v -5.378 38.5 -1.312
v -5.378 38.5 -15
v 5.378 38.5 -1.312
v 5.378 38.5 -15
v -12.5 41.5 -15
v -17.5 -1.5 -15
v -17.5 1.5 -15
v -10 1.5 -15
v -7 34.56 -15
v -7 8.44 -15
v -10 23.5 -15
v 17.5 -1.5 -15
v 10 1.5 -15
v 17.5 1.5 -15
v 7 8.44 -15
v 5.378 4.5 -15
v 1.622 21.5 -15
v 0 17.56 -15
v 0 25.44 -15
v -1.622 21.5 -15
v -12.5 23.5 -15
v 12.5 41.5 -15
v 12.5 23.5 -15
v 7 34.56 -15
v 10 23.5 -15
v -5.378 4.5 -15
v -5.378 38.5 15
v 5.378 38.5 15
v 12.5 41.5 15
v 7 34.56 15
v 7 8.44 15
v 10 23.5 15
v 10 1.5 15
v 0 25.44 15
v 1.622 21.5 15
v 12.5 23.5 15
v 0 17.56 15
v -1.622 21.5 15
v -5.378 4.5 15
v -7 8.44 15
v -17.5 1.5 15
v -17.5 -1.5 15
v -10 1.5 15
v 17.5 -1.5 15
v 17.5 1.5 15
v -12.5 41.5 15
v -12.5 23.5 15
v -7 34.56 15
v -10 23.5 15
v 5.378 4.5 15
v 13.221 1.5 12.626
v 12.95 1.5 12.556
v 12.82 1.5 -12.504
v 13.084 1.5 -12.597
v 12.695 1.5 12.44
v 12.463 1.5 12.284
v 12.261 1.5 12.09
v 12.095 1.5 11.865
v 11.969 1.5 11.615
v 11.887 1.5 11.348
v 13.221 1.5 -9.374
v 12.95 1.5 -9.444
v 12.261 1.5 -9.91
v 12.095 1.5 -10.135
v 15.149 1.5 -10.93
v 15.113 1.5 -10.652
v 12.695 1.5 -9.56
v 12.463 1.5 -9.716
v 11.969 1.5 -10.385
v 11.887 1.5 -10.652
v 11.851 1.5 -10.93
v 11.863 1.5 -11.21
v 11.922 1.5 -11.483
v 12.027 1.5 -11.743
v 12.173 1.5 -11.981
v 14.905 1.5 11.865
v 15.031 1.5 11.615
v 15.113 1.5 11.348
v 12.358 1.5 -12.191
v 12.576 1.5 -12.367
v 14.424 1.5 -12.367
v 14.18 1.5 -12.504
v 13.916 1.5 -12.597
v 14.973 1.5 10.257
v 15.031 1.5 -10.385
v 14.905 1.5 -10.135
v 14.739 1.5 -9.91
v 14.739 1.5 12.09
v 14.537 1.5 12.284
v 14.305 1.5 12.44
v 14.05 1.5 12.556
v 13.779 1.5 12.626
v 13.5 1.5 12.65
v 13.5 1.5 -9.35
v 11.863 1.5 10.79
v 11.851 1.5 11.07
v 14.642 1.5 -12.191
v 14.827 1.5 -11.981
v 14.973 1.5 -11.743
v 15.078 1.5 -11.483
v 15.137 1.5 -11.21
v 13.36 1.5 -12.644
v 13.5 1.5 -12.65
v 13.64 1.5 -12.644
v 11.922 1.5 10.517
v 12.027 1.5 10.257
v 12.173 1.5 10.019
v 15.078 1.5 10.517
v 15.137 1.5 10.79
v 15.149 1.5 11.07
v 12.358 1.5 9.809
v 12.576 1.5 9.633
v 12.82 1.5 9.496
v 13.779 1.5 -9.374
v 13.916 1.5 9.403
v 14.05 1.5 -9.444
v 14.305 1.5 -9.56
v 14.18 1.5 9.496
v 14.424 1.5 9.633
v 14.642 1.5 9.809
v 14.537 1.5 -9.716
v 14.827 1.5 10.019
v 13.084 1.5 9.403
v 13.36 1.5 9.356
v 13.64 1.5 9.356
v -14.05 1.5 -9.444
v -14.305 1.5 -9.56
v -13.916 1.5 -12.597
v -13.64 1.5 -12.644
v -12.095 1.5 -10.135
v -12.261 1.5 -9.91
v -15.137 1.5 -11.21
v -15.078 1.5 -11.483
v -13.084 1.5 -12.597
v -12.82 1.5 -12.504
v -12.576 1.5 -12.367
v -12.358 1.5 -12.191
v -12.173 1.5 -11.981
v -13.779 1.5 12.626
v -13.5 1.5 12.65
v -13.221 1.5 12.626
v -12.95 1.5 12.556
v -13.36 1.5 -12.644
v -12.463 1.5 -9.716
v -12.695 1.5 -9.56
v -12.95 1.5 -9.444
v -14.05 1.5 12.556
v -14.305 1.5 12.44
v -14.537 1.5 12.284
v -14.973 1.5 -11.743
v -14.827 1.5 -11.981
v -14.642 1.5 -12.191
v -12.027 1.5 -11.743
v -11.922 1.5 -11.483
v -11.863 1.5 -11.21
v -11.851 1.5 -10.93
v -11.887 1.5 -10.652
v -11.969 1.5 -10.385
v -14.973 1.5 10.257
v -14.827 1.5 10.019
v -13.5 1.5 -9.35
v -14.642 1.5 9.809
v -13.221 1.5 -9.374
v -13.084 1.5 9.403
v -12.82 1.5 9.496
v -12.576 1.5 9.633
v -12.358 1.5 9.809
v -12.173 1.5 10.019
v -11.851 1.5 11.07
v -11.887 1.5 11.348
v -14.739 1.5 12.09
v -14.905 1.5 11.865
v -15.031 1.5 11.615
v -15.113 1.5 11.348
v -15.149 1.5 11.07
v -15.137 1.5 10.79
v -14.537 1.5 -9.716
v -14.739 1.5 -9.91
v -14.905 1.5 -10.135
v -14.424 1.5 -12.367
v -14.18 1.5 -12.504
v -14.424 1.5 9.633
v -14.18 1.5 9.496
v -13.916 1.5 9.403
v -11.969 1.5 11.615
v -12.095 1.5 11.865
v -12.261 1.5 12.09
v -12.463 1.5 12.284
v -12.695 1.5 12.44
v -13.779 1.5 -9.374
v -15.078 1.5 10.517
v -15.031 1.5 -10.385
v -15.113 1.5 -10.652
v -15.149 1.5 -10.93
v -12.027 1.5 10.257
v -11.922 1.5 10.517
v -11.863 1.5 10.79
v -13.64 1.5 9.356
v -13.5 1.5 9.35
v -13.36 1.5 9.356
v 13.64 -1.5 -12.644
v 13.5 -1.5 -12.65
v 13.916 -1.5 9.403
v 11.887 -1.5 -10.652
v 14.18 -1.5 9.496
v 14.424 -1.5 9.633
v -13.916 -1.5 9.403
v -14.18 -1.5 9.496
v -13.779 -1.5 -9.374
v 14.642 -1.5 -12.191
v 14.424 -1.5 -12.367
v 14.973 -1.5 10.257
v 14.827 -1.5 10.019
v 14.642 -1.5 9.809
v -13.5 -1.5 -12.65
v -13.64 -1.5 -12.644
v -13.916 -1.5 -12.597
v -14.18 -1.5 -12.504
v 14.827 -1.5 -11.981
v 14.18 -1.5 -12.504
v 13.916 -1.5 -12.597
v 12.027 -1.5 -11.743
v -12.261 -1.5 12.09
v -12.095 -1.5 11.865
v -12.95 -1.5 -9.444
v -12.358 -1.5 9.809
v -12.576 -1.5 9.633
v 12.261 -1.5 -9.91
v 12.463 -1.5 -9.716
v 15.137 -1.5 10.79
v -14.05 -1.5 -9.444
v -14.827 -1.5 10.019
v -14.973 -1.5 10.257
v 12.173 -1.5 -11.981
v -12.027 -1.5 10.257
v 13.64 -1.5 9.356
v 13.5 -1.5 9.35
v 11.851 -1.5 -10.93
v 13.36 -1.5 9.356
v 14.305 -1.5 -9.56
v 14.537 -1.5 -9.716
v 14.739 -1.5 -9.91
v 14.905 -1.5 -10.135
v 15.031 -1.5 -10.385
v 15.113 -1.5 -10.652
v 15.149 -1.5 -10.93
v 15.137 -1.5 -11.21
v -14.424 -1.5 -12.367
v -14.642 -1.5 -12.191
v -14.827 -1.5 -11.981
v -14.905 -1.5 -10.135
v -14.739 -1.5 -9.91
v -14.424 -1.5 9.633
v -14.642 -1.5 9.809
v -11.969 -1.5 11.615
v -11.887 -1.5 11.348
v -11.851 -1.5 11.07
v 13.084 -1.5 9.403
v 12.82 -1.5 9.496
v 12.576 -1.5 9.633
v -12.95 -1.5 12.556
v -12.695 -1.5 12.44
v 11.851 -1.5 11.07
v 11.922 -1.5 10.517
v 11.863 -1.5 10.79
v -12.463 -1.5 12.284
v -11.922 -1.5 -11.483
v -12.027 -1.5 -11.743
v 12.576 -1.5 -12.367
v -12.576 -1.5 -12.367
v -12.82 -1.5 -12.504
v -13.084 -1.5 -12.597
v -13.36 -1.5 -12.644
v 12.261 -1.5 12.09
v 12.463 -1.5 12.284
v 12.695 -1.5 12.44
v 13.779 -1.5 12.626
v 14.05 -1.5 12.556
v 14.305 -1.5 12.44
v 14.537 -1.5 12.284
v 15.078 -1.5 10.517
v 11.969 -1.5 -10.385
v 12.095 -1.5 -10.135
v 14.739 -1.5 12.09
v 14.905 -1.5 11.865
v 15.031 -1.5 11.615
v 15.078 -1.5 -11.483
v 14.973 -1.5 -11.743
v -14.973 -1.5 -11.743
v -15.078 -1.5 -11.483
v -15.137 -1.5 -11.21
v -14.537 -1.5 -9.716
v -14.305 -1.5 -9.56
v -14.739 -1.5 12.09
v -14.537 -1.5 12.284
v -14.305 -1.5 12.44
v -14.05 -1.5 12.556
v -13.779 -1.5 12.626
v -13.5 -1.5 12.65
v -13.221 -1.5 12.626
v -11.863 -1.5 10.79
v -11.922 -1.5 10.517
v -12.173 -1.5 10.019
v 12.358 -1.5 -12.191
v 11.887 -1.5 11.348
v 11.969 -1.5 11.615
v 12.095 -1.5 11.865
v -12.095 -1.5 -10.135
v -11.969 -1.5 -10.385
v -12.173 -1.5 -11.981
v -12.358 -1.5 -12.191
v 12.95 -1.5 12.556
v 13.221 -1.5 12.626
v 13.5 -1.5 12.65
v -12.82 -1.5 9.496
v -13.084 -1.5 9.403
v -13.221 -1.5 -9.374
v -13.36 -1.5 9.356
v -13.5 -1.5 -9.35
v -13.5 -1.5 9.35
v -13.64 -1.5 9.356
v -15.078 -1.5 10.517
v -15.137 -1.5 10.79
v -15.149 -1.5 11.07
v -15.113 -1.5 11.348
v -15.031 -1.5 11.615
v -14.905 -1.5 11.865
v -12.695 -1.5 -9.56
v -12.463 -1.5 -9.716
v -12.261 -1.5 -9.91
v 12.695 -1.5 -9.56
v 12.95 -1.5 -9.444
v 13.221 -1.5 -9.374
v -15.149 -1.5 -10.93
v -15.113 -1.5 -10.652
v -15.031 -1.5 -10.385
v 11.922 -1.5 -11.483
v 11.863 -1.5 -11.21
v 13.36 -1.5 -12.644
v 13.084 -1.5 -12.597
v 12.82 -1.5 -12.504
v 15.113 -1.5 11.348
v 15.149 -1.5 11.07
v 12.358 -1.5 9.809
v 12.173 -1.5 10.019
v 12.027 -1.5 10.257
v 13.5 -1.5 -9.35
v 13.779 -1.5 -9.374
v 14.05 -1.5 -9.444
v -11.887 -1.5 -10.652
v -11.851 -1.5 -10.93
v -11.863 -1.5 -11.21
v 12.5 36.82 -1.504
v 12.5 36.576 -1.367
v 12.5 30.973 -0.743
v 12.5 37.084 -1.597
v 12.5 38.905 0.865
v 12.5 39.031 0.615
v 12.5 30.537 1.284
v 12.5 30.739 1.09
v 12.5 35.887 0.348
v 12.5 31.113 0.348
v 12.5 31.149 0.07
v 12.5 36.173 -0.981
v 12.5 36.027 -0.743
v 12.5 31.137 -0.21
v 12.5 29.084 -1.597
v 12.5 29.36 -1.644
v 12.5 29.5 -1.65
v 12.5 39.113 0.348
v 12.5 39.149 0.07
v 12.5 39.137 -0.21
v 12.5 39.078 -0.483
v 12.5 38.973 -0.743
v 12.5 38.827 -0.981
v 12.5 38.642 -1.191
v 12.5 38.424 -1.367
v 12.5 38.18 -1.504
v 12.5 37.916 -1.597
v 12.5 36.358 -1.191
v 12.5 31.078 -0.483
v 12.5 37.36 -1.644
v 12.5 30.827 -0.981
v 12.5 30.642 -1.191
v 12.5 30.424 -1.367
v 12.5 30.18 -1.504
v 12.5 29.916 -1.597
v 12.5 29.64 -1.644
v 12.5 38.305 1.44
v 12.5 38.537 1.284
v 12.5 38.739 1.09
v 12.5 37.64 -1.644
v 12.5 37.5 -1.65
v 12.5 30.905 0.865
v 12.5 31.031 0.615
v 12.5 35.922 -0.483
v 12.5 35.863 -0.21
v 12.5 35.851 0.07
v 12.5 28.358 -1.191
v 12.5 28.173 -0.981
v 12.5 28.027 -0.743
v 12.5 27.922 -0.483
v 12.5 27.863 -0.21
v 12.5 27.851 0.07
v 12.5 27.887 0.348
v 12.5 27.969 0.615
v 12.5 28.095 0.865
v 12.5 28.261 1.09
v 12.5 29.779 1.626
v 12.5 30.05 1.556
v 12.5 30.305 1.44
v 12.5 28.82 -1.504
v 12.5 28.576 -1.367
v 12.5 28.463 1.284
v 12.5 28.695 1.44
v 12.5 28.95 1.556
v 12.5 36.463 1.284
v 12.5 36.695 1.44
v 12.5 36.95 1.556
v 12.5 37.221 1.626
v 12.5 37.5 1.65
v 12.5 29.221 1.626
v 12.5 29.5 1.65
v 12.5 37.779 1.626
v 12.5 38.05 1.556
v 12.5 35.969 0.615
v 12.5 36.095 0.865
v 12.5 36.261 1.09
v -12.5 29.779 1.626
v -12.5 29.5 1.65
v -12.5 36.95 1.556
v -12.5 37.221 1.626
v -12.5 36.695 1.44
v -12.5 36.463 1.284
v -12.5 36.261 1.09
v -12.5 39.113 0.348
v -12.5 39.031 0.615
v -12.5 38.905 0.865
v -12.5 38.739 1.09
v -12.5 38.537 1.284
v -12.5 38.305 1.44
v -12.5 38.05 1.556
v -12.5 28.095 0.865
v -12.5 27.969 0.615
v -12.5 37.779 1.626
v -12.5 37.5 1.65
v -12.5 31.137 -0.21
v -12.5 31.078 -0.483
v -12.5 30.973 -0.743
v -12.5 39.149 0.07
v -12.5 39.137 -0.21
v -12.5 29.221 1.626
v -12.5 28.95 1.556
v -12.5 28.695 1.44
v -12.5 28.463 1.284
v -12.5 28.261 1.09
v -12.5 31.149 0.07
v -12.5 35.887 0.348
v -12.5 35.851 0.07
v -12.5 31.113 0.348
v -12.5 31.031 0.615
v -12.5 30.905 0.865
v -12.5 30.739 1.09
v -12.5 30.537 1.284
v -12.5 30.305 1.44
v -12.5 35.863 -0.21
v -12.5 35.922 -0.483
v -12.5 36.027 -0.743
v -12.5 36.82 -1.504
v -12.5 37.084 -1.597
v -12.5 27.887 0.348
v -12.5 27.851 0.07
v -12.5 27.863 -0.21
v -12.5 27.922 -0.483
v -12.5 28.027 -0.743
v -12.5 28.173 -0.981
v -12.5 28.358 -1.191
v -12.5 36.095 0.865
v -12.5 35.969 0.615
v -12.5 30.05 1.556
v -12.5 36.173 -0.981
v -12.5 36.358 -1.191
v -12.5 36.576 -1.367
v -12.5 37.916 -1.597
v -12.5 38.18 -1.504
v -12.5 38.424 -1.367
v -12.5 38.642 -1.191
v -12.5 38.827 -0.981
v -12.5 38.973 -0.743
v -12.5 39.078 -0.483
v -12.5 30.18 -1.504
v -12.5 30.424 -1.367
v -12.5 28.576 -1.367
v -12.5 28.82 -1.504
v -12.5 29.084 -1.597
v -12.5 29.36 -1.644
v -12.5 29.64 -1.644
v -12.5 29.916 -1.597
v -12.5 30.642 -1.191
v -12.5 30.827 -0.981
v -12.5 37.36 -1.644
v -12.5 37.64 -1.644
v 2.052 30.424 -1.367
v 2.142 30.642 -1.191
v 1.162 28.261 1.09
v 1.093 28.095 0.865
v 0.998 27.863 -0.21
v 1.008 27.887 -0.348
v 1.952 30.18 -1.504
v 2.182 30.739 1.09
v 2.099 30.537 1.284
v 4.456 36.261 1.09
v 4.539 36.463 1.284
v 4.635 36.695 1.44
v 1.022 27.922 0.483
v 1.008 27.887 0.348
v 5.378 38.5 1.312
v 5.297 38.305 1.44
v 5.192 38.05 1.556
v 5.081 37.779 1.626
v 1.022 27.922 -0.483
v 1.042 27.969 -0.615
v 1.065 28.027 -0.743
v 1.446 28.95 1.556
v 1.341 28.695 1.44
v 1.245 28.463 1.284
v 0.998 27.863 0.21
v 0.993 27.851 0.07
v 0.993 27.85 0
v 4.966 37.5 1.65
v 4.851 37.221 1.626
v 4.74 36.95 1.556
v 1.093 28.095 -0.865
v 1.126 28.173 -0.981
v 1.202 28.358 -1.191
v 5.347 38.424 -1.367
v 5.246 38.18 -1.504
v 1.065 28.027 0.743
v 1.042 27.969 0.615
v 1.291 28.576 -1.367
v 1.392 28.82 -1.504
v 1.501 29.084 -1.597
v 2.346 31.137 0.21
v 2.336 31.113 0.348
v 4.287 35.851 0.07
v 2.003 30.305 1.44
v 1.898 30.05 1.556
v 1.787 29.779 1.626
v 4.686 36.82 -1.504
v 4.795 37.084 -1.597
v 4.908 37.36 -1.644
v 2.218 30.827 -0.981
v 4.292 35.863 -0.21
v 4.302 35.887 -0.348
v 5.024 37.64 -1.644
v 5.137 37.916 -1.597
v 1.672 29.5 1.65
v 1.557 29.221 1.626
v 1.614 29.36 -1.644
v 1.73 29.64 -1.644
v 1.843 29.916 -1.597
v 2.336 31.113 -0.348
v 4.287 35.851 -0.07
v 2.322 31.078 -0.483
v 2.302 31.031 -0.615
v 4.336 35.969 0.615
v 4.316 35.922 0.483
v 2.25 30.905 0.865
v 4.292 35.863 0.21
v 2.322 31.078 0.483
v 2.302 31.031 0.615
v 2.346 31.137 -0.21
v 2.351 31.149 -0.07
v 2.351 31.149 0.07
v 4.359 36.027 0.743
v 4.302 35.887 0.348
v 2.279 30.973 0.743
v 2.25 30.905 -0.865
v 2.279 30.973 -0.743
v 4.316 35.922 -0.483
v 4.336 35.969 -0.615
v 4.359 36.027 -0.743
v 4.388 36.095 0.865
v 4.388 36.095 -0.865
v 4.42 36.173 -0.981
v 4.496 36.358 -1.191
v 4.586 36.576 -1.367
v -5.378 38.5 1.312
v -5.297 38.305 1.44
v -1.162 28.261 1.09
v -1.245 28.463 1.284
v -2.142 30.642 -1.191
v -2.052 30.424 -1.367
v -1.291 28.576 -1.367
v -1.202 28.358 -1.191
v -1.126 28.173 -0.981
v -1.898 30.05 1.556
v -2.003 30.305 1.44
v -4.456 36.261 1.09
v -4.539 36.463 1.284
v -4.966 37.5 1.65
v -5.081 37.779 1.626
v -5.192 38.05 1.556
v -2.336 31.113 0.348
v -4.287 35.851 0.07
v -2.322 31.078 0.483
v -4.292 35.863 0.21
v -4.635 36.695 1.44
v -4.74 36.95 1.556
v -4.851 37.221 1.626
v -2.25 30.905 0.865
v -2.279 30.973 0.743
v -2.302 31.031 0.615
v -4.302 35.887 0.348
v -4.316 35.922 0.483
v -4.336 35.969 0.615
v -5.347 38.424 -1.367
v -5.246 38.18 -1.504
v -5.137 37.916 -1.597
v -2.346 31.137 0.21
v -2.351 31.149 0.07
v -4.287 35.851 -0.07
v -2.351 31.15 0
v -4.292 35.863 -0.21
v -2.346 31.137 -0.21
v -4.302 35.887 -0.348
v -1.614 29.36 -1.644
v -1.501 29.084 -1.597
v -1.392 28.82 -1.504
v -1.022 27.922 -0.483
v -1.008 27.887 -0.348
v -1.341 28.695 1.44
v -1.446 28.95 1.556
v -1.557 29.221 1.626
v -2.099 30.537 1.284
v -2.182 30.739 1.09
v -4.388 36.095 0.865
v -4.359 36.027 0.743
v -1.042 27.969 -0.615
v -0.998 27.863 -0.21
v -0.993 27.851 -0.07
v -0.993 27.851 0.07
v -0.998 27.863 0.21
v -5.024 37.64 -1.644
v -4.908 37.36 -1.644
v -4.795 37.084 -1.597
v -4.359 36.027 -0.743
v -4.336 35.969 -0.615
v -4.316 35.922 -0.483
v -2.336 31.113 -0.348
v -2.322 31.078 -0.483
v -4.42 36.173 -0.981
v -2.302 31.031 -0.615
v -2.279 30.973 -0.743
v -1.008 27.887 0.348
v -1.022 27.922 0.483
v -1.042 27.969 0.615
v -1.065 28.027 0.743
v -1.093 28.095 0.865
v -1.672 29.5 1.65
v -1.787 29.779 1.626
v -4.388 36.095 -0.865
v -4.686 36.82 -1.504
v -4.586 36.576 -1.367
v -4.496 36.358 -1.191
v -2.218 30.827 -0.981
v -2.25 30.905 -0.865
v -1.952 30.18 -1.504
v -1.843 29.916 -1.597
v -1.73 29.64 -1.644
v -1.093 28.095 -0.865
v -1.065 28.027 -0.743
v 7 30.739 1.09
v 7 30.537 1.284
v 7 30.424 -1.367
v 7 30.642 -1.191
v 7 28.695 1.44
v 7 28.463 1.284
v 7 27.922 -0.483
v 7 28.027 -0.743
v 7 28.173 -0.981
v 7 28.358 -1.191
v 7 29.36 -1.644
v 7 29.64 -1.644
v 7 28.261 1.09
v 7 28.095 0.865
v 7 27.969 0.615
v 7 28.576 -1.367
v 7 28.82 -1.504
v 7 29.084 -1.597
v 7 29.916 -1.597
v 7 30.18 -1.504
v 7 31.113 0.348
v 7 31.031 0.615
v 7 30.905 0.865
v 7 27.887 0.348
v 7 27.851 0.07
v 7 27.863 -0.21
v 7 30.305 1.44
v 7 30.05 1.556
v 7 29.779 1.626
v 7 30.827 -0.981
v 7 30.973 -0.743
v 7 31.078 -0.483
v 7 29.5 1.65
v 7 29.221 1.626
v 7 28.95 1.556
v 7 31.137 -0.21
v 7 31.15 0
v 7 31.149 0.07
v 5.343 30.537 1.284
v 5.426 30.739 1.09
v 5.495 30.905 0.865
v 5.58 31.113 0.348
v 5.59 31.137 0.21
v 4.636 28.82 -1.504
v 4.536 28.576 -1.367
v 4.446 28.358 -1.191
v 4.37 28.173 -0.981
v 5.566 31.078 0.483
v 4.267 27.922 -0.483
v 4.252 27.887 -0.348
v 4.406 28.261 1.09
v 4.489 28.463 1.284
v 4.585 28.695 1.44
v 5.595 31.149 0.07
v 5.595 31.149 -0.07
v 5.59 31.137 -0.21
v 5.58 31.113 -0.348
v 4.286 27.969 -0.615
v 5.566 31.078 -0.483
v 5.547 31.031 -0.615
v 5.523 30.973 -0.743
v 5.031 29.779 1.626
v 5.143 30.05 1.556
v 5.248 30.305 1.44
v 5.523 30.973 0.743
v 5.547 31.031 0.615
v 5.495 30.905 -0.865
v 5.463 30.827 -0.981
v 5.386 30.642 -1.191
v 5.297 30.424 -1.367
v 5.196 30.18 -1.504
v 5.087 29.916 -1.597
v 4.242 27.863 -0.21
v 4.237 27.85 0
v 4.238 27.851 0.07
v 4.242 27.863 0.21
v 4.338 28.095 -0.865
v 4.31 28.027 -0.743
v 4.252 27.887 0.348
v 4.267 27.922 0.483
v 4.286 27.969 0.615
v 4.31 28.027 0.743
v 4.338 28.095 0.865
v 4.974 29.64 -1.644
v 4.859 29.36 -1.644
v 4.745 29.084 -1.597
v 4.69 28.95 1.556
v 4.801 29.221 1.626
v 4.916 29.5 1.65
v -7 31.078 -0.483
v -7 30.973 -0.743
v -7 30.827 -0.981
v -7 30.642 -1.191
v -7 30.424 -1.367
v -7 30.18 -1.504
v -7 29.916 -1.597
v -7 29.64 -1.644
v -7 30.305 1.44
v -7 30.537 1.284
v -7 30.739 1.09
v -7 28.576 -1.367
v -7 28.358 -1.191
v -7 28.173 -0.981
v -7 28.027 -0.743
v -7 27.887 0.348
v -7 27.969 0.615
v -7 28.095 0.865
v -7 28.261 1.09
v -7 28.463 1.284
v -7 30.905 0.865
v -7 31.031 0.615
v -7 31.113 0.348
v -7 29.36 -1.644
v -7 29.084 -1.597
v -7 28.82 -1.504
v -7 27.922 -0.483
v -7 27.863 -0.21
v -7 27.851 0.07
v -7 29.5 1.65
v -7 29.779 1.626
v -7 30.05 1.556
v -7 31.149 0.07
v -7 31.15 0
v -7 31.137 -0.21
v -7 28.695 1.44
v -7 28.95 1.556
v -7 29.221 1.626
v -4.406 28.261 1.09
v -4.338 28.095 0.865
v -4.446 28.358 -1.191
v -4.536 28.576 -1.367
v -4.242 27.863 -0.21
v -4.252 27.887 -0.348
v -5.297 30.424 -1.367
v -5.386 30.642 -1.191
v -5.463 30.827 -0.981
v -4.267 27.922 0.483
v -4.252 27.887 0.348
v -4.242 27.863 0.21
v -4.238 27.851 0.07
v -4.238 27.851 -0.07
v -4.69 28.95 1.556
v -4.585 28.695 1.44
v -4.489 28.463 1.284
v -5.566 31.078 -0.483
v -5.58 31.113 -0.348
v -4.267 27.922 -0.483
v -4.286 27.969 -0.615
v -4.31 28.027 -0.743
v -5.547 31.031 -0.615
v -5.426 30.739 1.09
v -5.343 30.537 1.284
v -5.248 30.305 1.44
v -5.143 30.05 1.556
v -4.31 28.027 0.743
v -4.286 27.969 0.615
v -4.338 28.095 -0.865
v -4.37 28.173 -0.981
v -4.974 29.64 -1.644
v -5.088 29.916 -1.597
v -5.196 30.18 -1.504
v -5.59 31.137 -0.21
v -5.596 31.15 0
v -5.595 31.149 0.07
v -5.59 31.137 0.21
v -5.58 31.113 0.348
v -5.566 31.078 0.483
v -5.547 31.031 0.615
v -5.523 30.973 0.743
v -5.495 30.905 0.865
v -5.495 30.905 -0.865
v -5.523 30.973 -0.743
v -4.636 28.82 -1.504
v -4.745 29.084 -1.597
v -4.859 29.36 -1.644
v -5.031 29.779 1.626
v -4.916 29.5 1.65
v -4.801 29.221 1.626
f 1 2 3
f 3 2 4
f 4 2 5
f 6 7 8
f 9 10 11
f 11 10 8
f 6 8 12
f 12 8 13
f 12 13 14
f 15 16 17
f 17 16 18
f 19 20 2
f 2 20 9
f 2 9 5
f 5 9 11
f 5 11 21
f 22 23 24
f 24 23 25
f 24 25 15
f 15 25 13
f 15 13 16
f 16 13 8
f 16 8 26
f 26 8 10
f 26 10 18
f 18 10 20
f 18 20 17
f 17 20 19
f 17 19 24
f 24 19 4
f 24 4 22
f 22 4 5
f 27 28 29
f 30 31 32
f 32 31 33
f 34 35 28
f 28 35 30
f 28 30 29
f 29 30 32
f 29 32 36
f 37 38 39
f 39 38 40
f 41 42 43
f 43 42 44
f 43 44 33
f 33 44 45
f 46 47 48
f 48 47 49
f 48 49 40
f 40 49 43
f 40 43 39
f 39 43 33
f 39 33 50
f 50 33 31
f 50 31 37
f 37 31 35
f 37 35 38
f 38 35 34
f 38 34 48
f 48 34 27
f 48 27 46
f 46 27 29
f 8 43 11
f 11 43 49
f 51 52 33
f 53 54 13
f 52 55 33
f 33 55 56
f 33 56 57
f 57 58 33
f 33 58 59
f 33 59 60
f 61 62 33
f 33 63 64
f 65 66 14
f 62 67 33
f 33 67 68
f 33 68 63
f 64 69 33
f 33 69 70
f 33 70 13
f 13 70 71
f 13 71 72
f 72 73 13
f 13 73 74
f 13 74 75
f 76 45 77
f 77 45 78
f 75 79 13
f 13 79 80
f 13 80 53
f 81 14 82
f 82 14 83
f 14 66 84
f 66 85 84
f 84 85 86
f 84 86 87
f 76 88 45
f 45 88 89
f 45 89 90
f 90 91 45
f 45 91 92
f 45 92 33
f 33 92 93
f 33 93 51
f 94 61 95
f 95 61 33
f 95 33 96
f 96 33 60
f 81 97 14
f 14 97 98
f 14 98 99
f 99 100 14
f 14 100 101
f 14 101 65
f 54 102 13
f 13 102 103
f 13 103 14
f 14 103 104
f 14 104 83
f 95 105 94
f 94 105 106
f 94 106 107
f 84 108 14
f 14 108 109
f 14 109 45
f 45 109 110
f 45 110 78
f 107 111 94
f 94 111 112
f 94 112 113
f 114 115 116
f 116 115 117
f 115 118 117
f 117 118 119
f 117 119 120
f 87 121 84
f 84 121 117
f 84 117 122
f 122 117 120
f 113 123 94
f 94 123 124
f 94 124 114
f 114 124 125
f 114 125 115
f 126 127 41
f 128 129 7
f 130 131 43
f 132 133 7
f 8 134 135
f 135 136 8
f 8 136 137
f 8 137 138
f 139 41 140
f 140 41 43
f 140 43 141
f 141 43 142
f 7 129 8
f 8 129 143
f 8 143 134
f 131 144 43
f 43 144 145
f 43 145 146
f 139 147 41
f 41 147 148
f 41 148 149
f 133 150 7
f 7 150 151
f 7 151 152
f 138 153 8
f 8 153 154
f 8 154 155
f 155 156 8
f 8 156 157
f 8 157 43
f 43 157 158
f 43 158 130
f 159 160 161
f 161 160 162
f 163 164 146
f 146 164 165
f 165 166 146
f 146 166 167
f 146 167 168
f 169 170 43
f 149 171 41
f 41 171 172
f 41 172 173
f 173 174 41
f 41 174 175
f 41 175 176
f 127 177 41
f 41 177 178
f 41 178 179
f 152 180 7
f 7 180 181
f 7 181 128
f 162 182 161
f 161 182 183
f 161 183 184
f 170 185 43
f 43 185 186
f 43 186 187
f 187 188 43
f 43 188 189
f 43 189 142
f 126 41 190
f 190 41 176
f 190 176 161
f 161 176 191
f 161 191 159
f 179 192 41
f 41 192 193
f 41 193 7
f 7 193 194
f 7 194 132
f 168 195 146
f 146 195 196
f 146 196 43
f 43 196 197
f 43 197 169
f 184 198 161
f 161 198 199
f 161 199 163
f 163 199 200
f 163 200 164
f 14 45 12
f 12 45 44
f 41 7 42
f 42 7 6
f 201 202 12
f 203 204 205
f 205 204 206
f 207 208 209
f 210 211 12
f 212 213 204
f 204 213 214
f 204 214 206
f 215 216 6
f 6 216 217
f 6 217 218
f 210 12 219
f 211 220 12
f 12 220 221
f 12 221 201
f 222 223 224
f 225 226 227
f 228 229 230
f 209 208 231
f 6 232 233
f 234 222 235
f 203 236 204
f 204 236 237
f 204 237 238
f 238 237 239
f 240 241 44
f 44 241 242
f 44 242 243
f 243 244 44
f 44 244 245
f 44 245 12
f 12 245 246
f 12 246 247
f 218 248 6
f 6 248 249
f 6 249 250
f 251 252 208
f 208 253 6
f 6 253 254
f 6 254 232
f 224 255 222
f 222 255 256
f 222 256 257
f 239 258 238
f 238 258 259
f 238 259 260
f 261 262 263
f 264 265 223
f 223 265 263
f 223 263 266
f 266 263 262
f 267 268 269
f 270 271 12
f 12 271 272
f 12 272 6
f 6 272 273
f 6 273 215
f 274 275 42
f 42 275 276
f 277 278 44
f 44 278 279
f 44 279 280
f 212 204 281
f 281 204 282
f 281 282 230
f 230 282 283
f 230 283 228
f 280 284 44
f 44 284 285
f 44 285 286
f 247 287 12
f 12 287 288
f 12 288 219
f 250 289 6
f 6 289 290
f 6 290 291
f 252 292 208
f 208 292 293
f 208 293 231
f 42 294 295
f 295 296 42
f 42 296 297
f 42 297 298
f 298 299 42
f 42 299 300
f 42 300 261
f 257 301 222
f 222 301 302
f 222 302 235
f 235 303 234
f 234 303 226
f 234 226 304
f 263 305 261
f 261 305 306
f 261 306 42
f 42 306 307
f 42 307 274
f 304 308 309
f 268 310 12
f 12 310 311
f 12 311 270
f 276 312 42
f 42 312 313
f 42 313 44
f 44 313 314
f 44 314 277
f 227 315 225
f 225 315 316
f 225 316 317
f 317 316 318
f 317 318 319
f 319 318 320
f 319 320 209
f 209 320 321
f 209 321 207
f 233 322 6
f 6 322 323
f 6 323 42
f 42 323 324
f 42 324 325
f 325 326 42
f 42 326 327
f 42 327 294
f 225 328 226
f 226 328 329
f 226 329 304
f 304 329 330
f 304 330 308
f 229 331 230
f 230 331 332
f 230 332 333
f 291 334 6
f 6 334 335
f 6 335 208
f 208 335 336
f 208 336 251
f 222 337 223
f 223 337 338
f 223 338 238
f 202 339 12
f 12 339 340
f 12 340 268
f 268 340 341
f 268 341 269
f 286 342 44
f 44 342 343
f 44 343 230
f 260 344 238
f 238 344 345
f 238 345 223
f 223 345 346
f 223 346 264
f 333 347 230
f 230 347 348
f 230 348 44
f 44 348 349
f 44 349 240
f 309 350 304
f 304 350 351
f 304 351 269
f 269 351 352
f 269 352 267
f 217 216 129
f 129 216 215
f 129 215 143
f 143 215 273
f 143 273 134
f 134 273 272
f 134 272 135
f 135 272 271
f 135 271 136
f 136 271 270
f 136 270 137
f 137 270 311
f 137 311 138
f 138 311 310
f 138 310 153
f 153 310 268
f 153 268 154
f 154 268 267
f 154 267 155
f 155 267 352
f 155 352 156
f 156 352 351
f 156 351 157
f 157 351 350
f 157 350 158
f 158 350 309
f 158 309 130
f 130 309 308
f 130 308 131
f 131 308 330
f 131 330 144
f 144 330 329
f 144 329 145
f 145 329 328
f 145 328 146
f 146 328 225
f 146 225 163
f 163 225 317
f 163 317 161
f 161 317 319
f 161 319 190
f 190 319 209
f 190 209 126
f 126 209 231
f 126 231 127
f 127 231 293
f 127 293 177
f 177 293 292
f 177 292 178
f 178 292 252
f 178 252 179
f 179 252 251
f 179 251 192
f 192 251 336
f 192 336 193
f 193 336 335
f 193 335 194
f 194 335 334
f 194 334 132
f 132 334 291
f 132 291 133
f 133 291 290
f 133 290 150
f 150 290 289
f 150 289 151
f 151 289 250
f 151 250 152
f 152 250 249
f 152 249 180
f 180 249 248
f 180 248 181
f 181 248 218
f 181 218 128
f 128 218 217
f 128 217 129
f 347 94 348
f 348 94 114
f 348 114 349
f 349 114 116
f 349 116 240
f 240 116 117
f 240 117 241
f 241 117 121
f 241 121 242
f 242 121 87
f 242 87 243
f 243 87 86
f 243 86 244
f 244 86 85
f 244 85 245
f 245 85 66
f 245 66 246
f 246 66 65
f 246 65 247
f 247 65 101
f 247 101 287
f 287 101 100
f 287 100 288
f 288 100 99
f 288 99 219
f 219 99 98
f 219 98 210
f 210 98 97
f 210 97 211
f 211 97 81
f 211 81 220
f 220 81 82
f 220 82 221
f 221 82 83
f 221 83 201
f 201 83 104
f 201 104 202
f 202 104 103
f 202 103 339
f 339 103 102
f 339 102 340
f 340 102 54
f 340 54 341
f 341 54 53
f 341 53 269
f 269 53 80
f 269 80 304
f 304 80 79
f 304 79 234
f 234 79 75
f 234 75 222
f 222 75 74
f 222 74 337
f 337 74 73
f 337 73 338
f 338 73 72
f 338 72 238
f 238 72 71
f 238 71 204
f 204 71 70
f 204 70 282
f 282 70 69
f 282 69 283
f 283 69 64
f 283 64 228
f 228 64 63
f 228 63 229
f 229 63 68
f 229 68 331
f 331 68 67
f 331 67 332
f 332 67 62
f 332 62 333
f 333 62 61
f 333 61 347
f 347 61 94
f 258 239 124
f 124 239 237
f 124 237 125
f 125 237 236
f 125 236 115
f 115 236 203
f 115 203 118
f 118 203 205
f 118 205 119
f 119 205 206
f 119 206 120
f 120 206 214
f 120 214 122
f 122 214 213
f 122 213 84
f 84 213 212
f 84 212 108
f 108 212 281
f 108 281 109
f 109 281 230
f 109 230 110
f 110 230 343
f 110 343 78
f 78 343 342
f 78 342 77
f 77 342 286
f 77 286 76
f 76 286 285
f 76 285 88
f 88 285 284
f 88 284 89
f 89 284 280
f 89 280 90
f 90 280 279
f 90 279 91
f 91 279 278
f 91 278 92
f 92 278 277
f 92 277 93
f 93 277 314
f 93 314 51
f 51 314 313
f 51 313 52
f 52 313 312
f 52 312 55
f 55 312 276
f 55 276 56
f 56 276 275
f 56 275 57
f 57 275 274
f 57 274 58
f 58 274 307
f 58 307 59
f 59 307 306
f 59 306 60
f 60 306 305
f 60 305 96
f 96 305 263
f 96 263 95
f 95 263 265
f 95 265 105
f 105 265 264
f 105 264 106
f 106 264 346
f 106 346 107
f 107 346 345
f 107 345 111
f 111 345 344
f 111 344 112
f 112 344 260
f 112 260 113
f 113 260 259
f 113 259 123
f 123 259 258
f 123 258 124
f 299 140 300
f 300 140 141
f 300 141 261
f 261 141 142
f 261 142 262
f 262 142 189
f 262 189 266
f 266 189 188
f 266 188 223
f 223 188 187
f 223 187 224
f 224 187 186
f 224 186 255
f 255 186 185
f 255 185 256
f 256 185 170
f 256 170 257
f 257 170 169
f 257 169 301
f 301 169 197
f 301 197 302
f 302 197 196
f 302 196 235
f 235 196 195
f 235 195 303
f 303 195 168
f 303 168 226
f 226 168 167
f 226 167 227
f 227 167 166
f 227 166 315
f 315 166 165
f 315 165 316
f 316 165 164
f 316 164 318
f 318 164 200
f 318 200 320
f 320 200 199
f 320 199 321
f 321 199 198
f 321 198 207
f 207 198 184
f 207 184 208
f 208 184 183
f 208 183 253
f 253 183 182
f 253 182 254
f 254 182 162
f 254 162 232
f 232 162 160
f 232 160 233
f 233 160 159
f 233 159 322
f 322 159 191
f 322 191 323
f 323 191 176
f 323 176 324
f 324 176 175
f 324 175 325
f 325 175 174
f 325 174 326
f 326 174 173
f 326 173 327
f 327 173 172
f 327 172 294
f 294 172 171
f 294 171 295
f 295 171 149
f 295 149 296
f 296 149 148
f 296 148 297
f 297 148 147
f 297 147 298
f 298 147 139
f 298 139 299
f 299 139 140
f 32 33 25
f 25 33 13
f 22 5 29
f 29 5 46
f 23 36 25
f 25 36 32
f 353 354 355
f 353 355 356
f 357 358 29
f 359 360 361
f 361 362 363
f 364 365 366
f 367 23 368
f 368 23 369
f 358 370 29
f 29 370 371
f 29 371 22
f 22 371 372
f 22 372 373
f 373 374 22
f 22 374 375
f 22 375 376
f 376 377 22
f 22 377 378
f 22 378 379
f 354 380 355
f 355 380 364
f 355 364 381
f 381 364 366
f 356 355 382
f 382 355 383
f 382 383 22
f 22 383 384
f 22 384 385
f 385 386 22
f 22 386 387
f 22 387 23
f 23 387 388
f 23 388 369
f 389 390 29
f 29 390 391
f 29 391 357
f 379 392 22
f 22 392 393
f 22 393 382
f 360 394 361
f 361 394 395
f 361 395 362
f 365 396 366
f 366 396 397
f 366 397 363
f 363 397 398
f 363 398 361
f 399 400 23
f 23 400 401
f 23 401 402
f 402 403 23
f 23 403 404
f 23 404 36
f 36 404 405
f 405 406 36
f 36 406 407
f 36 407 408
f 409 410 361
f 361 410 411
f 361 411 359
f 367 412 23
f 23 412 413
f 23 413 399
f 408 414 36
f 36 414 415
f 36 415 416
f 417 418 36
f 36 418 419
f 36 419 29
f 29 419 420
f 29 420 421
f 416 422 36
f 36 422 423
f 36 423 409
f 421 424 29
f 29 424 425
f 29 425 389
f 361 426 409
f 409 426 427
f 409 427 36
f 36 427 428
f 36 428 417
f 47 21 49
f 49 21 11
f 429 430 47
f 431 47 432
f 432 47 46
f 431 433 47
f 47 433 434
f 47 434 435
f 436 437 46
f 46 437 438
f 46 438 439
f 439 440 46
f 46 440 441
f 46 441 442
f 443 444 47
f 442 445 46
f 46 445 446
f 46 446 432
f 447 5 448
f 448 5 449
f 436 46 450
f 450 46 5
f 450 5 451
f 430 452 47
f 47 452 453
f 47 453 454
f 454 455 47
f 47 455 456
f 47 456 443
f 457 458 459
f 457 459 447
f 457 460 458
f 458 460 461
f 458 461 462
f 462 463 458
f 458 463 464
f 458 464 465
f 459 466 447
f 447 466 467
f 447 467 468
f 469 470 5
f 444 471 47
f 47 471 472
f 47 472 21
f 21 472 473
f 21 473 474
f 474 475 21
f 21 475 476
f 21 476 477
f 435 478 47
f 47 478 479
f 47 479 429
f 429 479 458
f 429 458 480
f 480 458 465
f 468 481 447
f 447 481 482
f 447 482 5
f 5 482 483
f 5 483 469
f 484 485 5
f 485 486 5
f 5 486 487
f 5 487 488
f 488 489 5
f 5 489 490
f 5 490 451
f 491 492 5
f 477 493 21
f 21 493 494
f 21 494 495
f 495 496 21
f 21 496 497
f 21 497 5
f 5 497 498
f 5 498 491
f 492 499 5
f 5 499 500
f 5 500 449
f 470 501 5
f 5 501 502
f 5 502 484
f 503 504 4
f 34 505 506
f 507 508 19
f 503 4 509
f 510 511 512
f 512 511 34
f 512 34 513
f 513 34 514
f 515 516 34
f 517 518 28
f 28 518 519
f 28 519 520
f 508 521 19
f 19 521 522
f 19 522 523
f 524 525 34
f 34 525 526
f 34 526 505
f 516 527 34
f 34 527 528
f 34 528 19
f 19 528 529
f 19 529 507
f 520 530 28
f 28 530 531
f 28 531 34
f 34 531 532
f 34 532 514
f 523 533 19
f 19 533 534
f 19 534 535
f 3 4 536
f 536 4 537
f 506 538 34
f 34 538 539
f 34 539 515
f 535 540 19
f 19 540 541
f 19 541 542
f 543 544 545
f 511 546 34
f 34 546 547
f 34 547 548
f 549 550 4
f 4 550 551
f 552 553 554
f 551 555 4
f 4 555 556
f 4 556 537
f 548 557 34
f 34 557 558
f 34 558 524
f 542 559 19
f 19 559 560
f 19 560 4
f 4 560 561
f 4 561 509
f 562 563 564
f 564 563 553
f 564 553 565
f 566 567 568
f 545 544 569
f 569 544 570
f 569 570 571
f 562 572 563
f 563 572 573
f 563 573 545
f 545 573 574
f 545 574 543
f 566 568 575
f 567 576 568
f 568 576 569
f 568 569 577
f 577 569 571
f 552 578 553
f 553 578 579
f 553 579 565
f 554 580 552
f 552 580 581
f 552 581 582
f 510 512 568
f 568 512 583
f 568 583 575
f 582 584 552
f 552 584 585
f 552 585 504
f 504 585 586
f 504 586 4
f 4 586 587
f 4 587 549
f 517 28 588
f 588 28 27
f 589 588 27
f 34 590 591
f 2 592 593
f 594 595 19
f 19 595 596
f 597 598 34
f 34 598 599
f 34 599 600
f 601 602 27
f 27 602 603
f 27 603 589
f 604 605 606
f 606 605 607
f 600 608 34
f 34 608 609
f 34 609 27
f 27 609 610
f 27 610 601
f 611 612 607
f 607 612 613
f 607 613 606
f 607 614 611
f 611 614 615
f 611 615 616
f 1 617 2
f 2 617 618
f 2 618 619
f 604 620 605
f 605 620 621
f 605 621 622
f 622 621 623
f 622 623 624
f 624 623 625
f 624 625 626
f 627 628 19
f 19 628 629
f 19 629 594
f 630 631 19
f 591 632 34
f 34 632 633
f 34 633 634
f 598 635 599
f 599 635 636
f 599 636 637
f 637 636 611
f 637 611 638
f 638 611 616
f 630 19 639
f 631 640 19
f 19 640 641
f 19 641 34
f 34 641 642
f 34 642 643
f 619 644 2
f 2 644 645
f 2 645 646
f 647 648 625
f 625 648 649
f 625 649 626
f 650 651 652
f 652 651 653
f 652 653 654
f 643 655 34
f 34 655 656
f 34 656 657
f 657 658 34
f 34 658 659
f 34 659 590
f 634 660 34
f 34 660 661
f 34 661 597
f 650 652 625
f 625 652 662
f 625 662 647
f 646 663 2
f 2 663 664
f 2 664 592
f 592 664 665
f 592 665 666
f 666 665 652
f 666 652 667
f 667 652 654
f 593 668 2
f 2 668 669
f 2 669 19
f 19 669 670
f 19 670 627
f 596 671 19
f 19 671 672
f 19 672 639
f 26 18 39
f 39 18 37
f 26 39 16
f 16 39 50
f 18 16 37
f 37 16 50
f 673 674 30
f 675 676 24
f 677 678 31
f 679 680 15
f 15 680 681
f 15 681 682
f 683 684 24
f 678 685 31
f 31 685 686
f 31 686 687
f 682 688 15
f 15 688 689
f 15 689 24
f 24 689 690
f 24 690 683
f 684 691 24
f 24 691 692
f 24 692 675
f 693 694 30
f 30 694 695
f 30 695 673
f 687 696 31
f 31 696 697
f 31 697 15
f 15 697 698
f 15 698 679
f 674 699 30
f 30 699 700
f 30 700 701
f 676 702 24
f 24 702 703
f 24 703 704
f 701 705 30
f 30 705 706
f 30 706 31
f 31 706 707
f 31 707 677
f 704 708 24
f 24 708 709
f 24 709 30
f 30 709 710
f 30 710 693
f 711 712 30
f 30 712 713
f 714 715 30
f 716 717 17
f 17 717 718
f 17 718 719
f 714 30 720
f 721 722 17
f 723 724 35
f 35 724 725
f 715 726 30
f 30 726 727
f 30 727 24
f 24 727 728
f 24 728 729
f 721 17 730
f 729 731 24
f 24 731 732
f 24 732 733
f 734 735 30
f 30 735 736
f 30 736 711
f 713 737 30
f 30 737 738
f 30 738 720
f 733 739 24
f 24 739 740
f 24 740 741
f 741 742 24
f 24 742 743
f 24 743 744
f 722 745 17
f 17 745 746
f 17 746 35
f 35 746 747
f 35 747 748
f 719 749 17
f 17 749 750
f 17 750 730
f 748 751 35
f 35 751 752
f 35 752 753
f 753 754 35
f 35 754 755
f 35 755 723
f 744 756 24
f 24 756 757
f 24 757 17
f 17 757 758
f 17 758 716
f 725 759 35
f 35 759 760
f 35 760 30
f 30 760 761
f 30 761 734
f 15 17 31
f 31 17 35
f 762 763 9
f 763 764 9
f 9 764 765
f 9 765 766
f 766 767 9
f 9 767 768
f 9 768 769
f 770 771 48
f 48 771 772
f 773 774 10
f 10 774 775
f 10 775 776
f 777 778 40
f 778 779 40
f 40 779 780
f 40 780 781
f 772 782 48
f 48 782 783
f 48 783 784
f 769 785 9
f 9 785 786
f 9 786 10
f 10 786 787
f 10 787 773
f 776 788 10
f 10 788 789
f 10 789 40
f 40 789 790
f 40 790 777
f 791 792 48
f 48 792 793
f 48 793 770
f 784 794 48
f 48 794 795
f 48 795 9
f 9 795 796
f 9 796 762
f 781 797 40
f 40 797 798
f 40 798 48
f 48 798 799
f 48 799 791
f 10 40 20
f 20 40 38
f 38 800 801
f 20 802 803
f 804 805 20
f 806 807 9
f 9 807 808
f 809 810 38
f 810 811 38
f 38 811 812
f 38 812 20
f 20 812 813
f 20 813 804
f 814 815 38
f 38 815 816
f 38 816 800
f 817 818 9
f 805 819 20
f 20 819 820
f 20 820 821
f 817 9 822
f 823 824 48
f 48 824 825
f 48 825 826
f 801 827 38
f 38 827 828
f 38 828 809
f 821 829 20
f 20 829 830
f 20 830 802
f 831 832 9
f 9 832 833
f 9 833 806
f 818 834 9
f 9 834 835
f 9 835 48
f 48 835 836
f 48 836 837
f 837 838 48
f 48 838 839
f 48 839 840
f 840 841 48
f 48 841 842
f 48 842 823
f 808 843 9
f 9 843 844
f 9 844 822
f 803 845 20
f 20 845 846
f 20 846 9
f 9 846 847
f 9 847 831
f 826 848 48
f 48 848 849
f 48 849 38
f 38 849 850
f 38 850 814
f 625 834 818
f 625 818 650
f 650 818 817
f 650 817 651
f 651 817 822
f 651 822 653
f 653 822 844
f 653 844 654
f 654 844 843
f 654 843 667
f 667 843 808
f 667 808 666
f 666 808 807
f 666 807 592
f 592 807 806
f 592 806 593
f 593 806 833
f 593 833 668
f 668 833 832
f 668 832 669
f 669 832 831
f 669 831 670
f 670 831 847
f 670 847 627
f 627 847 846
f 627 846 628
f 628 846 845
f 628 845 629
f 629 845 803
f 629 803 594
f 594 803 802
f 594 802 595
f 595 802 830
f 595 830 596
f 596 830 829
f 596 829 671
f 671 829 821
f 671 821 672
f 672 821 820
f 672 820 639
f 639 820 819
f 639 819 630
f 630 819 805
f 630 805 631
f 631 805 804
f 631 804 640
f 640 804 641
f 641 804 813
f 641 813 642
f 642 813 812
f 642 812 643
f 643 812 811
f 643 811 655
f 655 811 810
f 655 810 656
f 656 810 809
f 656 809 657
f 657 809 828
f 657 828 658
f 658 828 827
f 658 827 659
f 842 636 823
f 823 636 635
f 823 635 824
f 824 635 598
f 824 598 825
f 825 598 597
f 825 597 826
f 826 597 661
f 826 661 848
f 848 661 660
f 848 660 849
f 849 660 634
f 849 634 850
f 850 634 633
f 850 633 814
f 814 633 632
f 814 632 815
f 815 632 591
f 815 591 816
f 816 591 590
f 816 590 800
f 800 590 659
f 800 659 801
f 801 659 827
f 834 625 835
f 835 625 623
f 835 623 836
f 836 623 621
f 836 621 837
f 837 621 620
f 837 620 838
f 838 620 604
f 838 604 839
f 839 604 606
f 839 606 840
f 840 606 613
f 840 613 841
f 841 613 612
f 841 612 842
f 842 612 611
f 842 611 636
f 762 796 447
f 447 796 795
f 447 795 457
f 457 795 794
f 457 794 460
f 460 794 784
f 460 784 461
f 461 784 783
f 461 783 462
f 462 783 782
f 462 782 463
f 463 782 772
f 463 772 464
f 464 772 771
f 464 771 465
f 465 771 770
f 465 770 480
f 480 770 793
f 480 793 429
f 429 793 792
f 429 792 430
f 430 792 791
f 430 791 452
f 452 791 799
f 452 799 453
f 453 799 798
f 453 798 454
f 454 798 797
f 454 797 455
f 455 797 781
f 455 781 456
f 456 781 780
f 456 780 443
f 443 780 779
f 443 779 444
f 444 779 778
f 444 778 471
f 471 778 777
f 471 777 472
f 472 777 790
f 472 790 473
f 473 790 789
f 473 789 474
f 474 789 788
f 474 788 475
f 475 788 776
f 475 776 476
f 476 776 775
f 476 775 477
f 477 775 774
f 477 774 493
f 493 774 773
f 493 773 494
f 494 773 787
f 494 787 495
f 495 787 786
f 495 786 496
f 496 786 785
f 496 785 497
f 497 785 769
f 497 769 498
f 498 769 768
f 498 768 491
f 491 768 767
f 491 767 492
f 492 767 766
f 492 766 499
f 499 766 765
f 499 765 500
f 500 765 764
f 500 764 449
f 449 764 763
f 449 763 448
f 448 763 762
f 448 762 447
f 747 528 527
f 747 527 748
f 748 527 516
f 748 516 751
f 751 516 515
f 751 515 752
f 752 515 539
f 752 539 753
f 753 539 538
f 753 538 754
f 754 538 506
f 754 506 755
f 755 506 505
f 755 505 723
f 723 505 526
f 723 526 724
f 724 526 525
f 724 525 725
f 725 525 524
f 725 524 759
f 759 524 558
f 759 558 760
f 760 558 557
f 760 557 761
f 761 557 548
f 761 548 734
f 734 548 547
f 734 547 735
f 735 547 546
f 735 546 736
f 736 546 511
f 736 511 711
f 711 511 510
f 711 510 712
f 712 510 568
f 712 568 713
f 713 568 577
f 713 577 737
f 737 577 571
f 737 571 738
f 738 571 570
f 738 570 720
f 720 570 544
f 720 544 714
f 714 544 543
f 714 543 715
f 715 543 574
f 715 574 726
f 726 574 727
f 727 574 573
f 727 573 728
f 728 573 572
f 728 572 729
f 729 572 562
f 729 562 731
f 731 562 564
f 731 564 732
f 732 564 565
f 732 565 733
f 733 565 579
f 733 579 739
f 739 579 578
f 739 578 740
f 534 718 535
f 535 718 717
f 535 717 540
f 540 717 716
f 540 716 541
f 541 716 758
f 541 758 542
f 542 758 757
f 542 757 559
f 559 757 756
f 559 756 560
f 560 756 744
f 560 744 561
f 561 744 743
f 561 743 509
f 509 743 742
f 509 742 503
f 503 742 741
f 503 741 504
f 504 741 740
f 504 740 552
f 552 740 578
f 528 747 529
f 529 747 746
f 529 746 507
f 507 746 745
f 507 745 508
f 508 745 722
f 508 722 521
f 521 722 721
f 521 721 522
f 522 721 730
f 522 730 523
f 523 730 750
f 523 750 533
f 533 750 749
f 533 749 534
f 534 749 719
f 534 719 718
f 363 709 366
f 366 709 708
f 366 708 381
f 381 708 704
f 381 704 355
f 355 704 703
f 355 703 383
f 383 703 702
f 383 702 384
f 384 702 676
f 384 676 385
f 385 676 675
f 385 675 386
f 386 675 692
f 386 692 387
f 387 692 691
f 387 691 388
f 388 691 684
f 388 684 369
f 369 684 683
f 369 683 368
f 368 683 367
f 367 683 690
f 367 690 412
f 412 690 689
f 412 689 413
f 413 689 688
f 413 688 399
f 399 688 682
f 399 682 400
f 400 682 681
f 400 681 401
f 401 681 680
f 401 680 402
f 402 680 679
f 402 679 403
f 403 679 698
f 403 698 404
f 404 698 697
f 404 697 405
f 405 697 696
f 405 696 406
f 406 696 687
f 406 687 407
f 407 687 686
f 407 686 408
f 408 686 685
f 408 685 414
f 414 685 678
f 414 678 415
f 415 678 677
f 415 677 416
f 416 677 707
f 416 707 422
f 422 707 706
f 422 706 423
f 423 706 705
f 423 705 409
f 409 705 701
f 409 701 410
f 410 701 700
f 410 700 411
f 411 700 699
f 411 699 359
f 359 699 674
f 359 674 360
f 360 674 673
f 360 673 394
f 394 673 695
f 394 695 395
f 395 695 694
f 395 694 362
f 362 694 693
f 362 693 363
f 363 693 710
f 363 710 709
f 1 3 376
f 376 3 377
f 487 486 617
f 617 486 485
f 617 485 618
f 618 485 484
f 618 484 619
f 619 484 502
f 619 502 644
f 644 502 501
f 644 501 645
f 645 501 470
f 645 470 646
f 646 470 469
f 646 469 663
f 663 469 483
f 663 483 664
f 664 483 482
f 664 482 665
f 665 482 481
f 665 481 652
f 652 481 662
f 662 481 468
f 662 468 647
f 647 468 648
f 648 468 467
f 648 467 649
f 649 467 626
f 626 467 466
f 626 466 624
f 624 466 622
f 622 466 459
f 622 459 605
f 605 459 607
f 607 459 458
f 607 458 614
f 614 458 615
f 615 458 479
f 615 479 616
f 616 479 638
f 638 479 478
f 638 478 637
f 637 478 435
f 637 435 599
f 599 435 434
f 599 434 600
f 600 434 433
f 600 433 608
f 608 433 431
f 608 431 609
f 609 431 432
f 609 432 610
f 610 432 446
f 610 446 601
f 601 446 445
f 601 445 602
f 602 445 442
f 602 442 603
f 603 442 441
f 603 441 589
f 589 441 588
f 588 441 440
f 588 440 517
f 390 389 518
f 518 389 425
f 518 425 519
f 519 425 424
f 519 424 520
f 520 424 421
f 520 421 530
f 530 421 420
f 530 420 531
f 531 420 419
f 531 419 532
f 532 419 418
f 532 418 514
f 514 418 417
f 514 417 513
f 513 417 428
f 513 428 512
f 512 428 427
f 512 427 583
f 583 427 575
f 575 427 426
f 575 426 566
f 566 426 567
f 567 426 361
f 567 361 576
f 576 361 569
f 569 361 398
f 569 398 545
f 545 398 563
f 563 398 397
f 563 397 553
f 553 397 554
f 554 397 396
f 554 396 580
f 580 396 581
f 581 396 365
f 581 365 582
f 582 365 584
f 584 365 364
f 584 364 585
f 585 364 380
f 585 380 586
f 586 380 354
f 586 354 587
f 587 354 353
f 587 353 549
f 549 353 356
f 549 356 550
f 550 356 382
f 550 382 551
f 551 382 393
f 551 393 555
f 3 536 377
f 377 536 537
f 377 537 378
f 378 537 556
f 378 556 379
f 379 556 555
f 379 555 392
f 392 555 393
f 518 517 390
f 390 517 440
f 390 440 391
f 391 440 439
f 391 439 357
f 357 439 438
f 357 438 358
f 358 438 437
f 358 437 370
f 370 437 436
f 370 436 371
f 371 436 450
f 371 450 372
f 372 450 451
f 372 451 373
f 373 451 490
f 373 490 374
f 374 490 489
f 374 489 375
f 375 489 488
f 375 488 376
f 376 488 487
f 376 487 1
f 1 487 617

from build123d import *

# Parameters (mm, degrees)
SKETCH1_W           = 35
SKETCH1_H           = 30
BOSS_EXTRUDE1_DEPTH = 1.5
SKETCH2_R           = 1.65
CUT_EXTRUDE1_DEPTH  = 3
SKETCH3_W           = 20
SKETCH3_H           = 30
BOSS_EXTRUDE2_DEPTH = 40
SKETCH4_W           = 30
SKETCH4_H           = 18
BOSS_EXTRUDE3_DEPTH = 2.5
CUT_EXTRUDE2_DEPTH  = 30
SKETCH7_R           = 1.65
CUT_EXTRUDE3_DEPTH  = 25


with BuildPart() as part:
    # Sketch1 → Boss-Extrude1 (new body, symmetric)
    with BuildSketch(Plane(origin=(0, 0, 0), x_dir=(1, 0, 0), z_dir=(0, 1, 0))):
        Rectangle(SKETCH1_W, SKETCH1_H)
    extrude(amount=BOSS_EXTRUDE1_DEPTH, both=True)

    # Sketch2 → Cut-Extrude1 (cut)
    with BuildSketch(Plane(origin=(0, 1.5, 0), x_dir=(1, 0, 0), z_dir=(0, 1, 0))):
        with Locations((-13.5, 11)):
            Circle(SKETCH2_R)
        with Locations((13.5, 11)):
            Circle(SKETCH2_R)
        with Locations((13.5, -11)):
            Circle(SKETCH2_R)
        with Locations((-13.5, -11)):
            Circle(SKETCH2_R)
    extrude(amount=-CUT_EXTRUDE1_DEPTH, mode=Mode.SUBTRACT)

    # Sketch3 → Boss-Extrude2 (add)
    with BuildSketch(Plane(origin=(0, 1.5, 0), x_dir=(1, 0, 0), z_dir=(0, 1, 0))):
        Rectangle(SKETCH3_W, SKETCH3_H)
    extrude(amount=BOSS_EXTRUDE2_DEPTH)

    # Sketch4 → Boss-Extrude3 (add)
    with BuildSketch(Plane(origin=(10, 0, 0), x_dir=(0, 0, -1), z_dir=(1, 0, 0))):
        with Locations((0, 32.5)):
            Rectangle(SKETCH4_W, SKETCH4_H)
    boss_extrude3 = extrude(amount=BOSS_EXTRUDE3_DEPTH)

    # Mirror1: Boss-Extrude3 across plane
    add(boss_extrude3.mirror(Plane(origin=(0, 0, 0), x_dir=(0, 0, 1), z_dir=(1, 0, 0))))

    # Sketch5 → Cut-Extrude2 (cut)
    with BuildSketch(Plane(origin=(0, 0, -15), x_dir=(-1, 0, 0), z_dir=(0, 0, -1))):
        Polygon((0, 25.439594924), (5.377813855, 38.5), (-5.377813855, 38.5), align=None)
        Polygon((7, 8.439594924), (7, 34.560405076), (1.622186145, 21.5), align=None)
        Polygon((-7, 8.439594924), (-1.622186145, 21.5), (-7, 34.560405076), align=None)
        Polygon((5.377813855, 4.5), (0, 17.560405076), (-5.377813855, 4.5), align=None)
    extrude(amount=-CUT_EXTRUDE2_DEPTH, mode=Mode.SUBTRACT)

    # Sketch7 → Cut-Extrude3 (cut)
    with BuildSketch(Plane.ZY.offset(12.5)):
        with Locations((0, 37.5)):
            Circle(SKETCH7_R)
        with Locations((0, 29.5)):
            Circle(SKETCH7_R)
    extrude(amount=-CUT_EXTRUDE3_DEPTH, mode=Mode.SUBTRACT)


solid = part.part
